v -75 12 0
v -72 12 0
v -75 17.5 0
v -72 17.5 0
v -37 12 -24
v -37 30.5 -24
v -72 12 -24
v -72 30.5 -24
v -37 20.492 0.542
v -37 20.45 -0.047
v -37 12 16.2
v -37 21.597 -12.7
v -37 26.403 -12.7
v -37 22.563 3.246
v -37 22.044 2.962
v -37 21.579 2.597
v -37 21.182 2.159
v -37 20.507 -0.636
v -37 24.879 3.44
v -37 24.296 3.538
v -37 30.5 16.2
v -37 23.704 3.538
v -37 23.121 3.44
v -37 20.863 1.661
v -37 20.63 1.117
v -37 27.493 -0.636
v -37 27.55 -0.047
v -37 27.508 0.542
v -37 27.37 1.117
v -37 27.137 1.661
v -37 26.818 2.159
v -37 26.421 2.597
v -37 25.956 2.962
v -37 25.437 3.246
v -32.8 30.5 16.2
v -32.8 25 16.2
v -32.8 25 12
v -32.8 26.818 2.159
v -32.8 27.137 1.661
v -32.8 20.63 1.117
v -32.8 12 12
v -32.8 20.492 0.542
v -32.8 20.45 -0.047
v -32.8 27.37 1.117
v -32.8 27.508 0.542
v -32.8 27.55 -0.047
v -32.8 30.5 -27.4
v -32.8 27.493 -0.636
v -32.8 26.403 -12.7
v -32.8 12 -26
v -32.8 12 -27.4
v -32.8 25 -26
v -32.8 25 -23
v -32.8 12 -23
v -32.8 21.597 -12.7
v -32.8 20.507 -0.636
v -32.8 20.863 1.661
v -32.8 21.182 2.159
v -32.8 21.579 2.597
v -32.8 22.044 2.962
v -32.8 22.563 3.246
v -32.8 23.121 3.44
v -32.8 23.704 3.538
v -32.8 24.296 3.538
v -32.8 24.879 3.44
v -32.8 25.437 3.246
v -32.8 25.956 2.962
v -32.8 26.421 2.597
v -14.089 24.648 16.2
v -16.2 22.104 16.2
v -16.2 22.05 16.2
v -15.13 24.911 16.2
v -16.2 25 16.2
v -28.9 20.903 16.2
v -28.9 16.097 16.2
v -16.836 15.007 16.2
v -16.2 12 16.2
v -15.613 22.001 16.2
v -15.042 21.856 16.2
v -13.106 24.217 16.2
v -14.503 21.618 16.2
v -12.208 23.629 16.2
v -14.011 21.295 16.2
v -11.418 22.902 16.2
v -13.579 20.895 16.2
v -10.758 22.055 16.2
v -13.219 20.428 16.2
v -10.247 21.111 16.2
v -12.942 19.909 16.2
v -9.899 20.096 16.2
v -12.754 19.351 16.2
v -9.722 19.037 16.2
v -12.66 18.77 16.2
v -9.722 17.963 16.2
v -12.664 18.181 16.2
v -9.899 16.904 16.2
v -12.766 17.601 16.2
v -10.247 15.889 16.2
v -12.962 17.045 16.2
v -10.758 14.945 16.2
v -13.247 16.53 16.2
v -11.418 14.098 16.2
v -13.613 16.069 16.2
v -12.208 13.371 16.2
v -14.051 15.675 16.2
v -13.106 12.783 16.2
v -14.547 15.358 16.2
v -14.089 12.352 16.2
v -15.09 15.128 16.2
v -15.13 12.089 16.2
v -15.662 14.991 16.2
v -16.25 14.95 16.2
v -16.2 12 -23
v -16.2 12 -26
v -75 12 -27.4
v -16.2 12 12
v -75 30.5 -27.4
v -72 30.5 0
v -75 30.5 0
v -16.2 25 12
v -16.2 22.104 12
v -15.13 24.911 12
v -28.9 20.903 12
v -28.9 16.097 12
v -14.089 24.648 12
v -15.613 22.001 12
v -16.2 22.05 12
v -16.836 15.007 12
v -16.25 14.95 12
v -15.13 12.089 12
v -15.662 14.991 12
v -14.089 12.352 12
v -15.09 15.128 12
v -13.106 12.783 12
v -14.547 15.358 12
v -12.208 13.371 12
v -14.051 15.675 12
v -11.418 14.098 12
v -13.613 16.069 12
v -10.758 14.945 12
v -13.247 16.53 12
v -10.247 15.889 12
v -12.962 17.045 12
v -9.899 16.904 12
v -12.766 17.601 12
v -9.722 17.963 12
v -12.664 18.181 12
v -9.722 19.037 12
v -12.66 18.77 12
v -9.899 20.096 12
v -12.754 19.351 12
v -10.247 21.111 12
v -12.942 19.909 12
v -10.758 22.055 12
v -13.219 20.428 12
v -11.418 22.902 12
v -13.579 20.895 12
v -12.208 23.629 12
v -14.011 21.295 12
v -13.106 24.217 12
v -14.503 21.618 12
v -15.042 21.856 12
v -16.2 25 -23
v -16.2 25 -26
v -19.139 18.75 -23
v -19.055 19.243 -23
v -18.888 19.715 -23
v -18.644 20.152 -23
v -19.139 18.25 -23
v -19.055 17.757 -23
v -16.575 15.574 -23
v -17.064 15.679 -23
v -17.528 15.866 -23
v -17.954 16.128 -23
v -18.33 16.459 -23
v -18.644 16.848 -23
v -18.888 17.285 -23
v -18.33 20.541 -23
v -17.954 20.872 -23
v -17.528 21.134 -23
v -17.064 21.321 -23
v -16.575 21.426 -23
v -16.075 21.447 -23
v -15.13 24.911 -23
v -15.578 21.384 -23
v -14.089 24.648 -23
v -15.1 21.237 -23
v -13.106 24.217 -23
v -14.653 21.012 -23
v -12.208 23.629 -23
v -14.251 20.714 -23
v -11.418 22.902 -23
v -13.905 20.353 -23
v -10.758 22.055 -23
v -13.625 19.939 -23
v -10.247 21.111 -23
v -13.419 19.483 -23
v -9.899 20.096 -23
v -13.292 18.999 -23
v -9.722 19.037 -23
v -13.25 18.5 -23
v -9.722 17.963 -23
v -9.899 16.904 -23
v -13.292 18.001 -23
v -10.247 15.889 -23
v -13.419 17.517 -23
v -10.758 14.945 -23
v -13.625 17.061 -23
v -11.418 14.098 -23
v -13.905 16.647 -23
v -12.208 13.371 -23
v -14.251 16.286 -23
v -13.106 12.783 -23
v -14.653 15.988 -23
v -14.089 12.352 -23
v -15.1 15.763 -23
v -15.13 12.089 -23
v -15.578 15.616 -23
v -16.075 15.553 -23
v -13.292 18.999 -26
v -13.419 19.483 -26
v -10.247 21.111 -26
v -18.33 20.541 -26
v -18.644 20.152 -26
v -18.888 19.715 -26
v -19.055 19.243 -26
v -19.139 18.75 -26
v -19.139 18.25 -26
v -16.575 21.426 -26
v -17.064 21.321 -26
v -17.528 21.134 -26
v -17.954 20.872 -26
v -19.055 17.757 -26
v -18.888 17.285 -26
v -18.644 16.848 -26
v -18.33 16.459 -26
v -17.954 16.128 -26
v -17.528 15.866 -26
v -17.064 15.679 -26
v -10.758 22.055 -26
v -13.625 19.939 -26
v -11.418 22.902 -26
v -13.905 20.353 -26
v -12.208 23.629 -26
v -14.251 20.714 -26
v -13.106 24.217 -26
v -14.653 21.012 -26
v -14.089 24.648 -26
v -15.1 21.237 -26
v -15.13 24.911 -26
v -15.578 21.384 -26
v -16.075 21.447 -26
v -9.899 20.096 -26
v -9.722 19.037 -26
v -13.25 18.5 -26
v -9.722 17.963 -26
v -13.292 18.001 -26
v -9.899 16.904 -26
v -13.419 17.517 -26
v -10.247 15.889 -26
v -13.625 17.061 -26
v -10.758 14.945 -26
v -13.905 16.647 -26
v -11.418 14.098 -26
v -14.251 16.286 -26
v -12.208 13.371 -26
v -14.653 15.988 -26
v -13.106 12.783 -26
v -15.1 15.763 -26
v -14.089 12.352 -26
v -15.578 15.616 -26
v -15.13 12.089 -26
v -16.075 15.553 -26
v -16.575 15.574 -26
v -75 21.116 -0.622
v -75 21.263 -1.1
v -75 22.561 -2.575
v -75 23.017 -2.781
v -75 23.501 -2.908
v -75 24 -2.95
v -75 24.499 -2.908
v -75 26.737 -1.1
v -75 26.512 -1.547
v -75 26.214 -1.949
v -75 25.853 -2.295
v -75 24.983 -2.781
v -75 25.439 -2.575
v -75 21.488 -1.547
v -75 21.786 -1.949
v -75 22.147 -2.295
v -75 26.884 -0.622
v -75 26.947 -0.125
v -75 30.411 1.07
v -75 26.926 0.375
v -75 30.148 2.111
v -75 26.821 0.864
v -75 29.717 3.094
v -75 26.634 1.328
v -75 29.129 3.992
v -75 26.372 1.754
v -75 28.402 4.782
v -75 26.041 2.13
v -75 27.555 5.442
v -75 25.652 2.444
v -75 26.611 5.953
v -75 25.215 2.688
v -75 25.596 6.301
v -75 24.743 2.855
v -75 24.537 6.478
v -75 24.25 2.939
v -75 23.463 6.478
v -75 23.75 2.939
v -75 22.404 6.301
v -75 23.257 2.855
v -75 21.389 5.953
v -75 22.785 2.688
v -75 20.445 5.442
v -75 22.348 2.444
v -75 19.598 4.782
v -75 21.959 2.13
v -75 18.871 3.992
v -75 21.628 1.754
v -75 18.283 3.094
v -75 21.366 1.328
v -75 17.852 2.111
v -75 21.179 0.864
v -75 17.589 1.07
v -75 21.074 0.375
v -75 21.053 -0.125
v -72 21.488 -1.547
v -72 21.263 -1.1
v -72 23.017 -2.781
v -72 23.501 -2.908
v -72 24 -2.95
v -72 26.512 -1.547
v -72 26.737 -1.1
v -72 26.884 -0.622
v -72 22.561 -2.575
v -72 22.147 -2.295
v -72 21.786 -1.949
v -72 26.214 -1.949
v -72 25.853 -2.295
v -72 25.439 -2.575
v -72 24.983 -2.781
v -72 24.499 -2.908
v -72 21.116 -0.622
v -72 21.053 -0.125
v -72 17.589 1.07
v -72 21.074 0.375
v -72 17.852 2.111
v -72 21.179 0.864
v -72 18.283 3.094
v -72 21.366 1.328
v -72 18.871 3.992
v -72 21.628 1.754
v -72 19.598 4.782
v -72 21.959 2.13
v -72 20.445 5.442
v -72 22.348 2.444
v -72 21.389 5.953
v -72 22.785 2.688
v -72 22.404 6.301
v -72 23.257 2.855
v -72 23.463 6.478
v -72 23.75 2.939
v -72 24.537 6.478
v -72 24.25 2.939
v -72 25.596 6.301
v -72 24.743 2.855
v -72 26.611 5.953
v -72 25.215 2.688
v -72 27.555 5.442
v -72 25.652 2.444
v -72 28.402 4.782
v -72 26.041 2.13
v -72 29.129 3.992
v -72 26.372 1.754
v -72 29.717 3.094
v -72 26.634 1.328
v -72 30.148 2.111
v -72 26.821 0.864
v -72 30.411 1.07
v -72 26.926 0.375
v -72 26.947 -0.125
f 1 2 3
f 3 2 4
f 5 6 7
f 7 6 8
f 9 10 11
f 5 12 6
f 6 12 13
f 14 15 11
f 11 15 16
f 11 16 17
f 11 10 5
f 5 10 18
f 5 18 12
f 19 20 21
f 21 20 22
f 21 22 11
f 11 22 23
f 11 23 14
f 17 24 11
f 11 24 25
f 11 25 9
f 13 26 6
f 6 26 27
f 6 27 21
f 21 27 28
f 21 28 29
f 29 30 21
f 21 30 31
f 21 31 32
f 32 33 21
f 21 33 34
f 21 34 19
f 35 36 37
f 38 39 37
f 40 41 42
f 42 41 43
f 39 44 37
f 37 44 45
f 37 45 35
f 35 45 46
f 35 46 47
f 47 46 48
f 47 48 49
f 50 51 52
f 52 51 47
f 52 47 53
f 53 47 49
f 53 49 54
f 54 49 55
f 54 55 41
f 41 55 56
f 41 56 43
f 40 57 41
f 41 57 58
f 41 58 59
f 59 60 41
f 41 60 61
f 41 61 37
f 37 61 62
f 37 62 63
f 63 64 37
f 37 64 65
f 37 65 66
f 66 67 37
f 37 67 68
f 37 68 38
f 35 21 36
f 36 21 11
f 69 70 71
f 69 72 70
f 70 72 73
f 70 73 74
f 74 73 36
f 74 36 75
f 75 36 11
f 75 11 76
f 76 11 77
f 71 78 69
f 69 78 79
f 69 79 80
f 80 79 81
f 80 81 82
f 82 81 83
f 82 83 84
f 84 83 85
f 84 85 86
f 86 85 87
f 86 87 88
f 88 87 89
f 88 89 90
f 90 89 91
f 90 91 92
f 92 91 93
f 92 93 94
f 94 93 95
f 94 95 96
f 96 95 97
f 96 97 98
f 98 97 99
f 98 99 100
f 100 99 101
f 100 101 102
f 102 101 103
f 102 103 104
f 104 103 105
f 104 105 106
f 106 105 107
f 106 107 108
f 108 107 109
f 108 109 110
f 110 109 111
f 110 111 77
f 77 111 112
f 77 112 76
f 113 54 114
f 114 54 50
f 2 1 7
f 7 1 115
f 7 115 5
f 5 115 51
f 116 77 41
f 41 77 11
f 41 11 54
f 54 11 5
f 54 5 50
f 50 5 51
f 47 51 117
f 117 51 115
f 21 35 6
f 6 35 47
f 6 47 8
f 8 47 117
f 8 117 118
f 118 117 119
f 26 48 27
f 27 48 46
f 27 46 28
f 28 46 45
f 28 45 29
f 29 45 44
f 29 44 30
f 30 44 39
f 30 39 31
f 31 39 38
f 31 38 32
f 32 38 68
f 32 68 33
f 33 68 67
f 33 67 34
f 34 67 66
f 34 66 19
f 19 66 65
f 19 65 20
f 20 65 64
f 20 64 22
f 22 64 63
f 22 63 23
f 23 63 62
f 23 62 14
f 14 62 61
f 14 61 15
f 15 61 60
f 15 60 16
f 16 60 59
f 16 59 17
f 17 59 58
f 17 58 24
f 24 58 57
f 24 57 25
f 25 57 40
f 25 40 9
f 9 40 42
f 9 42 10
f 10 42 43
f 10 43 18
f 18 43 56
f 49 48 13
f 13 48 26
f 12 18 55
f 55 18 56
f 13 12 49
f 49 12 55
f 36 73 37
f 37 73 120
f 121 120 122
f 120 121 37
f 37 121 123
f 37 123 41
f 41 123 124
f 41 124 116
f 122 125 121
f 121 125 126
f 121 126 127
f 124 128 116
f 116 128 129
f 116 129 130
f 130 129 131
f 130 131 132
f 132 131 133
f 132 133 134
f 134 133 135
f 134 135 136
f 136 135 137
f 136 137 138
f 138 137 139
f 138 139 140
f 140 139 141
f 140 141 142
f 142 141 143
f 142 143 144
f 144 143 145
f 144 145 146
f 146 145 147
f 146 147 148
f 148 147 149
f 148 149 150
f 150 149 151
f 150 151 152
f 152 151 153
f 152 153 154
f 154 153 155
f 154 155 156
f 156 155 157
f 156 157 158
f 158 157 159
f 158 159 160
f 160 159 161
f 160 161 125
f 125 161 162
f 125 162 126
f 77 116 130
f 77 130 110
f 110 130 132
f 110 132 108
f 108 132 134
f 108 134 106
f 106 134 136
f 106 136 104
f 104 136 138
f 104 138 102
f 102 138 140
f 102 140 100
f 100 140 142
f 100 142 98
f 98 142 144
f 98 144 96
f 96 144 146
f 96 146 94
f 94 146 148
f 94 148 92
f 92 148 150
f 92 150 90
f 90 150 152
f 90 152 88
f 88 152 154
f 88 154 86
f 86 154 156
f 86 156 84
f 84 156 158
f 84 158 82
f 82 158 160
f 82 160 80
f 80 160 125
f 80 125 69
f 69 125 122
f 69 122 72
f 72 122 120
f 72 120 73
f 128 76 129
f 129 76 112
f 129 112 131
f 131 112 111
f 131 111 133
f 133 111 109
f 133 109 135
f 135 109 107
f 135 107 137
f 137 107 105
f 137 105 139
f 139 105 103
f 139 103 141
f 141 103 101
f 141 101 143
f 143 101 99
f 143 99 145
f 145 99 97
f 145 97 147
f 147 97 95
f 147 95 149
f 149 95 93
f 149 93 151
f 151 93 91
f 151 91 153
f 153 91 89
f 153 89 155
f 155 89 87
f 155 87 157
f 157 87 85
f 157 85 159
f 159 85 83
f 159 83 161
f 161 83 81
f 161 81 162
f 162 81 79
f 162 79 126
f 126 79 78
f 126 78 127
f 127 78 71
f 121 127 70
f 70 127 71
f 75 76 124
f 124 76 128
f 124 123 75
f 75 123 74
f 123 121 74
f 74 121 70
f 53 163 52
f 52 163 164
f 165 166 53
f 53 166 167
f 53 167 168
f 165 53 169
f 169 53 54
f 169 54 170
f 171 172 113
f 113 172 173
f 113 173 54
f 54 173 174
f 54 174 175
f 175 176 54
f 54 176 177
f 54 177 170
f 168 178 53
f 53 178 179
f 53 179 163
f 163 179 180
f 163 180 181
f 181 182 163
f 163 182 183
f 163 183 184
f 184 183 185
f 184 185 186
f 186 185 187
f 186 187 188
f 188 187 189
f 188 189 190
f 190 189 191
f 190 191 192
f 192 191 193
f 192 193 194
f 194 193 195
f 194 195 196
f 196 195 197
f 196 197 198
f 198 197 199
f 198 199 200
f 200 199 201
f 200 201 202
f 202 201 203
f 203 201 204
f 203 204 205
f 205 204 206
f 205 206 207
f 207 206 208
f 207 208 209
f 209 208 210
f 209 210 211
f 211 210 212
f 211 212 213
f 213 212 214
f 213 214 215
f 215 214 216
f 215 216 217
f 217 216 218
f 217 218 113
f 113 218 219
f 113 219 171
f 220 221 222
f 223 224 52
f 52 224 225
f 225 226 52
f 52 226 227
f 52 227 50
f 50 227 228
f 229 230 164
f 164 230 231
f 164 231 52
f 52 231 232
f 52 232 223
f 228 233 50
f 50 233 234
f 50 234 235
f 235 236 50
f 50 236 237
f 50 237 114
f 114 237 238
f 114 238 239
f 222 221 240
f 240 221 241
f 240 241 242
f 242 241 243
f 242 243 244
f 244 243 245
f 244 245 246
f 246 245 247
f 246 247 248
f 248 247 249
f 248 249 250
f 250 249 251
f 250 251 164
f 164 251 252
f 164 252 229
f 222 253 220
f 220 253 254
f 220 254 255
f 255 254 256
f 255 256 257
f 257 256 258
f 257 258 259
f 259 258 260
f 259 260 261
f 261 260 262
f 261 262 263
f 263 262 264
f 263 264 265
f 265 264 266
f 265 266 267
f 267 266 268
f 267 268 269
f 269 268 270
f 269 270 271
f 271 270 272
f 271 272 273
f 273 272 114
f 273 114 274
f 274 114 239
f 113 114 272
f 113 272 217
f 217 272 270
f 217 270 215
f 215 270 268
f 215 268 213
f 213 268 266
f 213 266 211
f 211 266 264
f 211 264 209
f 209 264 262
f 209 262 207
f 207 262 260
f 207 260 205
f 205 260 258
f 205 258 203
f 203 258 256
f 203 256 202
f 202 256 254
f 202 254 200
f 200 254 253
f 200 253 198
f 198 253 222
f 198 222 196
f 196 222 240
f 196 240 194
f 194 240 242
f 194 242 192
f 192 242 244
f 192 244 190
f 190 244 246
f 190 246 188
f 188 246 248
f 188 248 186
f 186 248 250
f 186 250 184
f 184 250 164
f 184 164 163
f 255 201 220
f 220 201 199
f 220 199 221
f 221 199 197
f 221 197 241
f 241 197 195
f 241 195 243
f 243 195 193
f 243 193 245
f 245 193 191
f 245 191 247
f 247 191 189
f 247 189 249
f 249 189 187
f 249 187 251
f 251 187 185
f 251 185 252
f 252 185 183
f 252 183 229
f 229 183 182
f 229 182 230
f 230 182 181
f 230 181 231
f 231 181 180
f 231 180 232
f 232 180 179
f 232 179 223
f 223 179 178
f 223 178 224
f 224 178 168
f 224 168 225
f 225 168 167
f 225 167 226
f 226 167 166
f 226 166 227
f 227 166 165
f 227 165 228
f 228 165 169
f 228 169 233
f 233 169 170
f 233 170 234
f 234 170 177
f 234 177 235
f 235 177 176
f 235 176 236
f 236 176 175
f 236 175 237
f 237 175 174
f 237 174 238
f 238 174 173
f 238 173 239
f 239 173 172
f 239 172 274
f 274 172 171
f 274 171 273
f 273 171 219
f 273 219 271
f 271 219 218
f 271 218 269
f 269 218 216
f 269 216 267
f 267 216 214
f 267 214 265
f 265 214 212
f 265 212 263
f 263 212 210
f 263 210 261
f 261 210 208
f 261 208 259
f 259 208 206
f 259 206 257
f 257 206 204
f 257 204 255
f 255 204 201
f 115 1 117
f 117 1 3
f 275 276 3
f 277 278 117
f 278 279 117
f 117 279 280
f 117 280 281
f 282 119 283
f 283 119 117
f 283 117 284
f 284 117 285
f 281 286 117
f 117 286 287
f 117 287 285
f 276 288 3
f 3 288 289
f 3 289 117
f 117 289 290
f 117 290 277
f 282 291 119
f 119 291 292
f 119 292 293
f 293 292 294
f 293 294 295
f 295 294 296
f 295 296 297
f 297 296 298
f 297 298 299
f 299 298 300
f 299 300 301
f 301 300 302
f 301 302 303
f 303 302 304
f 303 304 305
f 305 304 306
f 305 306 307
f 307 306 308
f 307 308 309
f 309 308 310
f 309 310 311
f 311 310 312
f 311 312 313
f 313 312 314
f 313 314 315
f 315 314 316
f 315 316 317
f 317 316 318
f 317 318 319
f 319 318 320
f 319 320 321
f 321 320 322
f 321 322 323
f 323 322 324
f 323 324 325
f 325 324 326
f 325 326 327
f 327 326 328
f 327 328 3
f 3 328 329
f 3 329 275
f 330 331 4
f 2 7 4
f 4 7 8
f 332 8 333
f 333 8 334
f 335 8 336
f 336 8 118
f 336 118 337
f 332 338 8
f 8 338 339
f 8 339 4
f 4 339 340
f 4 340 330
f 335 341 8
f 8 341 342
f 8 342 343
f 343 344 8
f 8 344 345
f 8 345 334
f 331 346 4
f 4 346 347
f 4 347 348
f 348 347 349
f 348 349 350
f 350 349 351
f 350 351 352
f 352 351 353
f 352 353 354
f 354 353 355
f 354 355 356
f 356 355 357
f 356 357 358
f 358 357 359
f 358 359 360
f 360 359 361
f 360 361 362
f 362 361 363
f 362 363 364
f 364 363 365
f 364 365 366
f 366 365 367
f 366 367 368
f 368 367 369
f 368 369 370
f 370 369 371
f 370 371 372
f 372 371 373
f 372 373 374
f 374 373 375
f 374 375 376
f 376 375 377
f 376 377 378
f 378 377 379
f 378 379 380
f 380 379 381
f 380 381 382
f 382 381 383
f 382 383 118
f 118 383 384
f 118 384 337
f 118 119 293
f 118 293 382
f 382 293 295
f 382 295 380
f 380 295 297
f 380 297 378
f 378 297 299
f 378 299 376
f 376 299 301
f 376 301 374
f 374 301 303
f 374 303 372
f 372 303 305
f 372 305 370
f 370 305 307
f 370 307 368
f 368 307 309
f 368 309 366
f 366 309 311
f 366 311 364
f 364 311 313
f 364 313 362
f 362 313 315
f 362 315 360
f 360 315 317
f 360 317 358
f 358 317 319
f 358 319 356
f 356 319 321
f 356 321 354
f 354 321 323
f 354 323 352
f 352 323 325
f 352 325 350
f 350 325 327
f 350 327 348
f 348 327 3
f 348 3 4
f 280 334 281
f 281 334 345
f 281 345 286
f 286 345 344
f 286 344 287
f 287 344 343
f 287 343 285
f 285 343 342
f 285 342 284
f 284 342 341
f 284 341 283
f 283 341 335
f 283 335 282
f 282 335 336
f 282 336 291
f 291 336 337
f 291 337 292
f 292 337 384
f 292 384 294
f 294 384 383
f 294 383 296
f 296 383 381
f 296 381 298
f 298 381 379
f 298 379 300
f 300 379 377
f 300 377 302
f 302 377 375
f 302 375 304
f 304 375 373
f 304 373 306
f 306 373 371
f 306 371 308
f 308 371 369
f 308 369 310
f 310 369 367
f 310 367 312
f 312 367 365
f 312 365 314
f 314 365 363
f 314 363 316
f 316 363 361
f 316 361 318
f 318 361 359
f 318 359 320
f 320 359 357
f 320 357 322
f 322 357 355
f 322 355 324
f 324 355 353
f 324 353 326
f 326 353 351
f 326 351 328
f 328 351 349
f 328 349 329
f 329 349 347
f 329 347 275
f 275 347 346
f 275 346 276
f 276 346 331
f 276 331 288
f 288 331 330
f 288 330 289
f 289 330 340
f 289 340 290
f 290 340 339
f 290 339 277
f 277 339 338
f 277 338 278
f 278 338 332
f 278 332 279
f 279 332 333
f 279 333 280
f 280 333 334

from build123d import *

# Parameters (mm, degrees)
BOSS_EXTRUDE1_START = -34.9
SKETCH1_W           = 43.6
SKETCH1_H           = 18.5
BOSS_EXTRUDE1_DEPTH = 2.1
CUT_EXTRUDE1_START  = -34.9
SKETCH2_R           = 3.55
CUT_EXTRUDE1_DEPTH  = 2.1
CUT_EXTRUDE2_START  = -34.9
CUT_EXTRUDE2_DEPTH  = 2.1
BOSS_EXTRUDE2_START = 14.1
SKETCH4_R           = 6.5
BOSS_EXTRUDE2_DEPTH = 2.1
BOSS_EXTRUDE3_START = 14.1
SKETCH5_W           = 20.8
SKETCH5_H           = 13
BOSS_EXTRUDE3_DEPTH = 2.1
CUT_EXTRUDE3_START  = 14.1
SKETCH6_R           = 3.55
CUT_EXTRUDE3_DEPTH  = 2.1
CUT_EXTRUDE4_START  = 14.1
CUT_EXTRUDE4_DEPTH  = 2.1
BOSS_EXTRUDE4_START = -24.5
SKETCH8_R           = 6.5
BOSS_EXTRUDE4_DEPTH = 1.5
BOSS_EXTRUDE5_START = -24.5
SKETCH9_W           = 20.8
SKETCH9_H           = 13
BOSS_EXTRUDE5_DEPTH = 1.5
CUT_EXTRUDE5_START  = -24.5
SKETCH10_R          = 2.95
CUT_EXTRUDE5_DEPTH  = 1.5
BOSS_EXTRUDE6_START = -25.7
SKETCH11_W          = 42.2
SKETCH11_H          = 18.5
BOSS_EXTRUDE6_DEPTH = 1.7
BOSS_EXTRUDE7_START = -73.5
SKETCH12_R          = 6.5
BOSS_EXTRUDE7_DEPTH = 1.5
BOSS_EXTRUDE8_START = -73.5
SKETCH13_W          = 27.4
SKETCH13_H          = 18.5
BOSS_EXTRUDE8_DEPTH = 1.5
CUT_EXTRUDE6_START  = -73.5
SKETCH14_R          = 2.95
CUT_EXTRUDE6_DEPTH  = 1.5


with BuildPart() as part:
    # Sketch1 → Boss-Extrude1 (new, symmetric)
    with BuildSketch(Plane(origin=(0, 0, 0), x_dir=(0, 0, -1), z_dir=(1, 0, 0)).offset(BOSS_EXTRUDE1_START)):
        with Locations((5.6, 21.25)):
            Rectangle(SKETCH1_W, SKETCH1_H)
    extrude(amount=BOSS_EXTRUDE1_DEPTH, both=True)

    # Sketch2 → Cut-Extrude1 (cut, symmetric)
    with BuildSketch(Plane(origin=(0, 0, 0), x_dir=(0, 0, -1), z_dir=(1, 0, 0)).offset(CUT_EXTRUDE1_START)):
        with Locations((0, 24)):
            Circle(SKETCH2_R)
    extrude(amount=CUT_EXTRUDE1_DEPTH, both=True, mode=Mode.SUBTRACT)

    # Sketch3 → Cut-Extrude2 (cut, symmetric)
    with BuildSketch(Plane(origin=(0, 0, 0), x_dir=(0, 0, -1), z_dir=(1, 0, 0)).offset(CUT_EXTRUDE2_START)):
        Polygon((0, 20.45), (12.7, 21.596718595), (12.7, 26.403281405), (0, 27.55), align=None)
    extrude(amount=CUT_EXTRUDE2_DEPTH, both=True, mode=Mode.SUBTRACT)



with BuildPart() as body_2:
    # Sketch4 → Boss-Extrude2 (new, symmetric)
    with BuildSketch(Plane.XY.offset(BOSS_EXTRUDE2_START)):
        with Locations((-16.2, 18.5)):
            Circle(SKETCH4_R)
    extrude(amount=BOSS_EXTRUDE2_DEPTH, both=True)


with BuildPart() as part_1:
    add(part.part)

    add(body_2.part)  # Boss-Extrude3 merges body 2
    # Sketch5 → Boss-Extrude3 (add, symmetric)
    with BuildSketch(Plane.XY.offset(BOSS_EXTRUDE3_START)):
        with Locations((-26.6, 18.5)):
            Rectangle(SKETCH5_W, SKETCH5_H)
    extrude(amount=BOSS_EXTRUDE3_DEPTH, both=True)

    # Sketch6 → Cut-Extrude3 (cut, symmetric)
    with BuildSketch(Plane.XY.offset(CUT_EXTRUDE3_START)):
        with Locations((-16.2, 18.5)):
            Circle(SKETCH6_R)
    extrude(amount=CUT_EXTRUDE3_DEPTH, both=True, mode=Mode.SUBTRACT)

    # Sketch7 → Cut-Extrude4 (cut, symmetric)
    with BuildSketch(Plane.XY.offset(CUT_EXTRUDE4_START)):
        Polygon((-16.2, 22.103784861), (-28.9, 20.903281405), (-28.9, 16.096718595), (-16.2, 14.95), align=None)
    extrude(amount=CUT_EXTRUDE4_DEPTH, both=True, mode=Mode.SUBTRACT)



with BuildPart() as body_2_2:
    # Sketch8 → Boss-Extrude4 (new, symmetric)
    with BuildSketch(Plane.XY.offset(BOSS_EXTRUDE4_START)):
        with Locations(Location((-16.2, 18.5, 0), (0, 0, 180))):
            Circle(SKETCH8_R)
    extrude(amount=BOSS_EXTRUDE4_DEPTH, both=True)


with BuildPart() as part_2:
    add(part_1.part)

    add(body_2_2.part)  # Boss-Extrude5 merges body 2 2
    # Sketch9 → Boss-Extrude5 (add, symmetric)
    with BuildSketch(Plane.XY.offset(BOSS_EXTRUDE5_START)):
        with Locations((-26.6, 18.5)):
            Rectangle(SKETCH9_W, SKETCH9_H)
    extrude(amount=BOSS_EXTRUDE5_DEPTH, both=True)

    # Sketch10 → Cut-Extrude5 (cut, symmetric)
    with BuildSketch(Plane.XY.offset(CUT_EXTRUDE5_START)):
        with Locations((-16.2, 18.5)):
            Circle(SKETCH10_R)
    extrude(amount=CUT_EXTRUDE5_DEPTH, both=True, mode=Mode.SUBTRACT)

    # Sketch11 → Boss-Extrude6 (add, symmetric)
    with BuildSketch(Plane.XY.offset(BOSS_EXTRUDE6_START)):
        with Locations((-53.9, 21.25)):
            Rectangle(SKETCH11_W, SKETCH11_H)
    extrude(amount=BOSS_EXTRUDE6_DEPTH, both=True)



with BuildPart() as body_2_3:
    # Sketch12 → Boss-Extrude7 (new, symmetric)
    with BuildSketch(Plane(origin=(0, 0, 0), x_dir=(0, 0, -1), z_dir=(1, 0, 0)).offset(BOSS_EXTRUDE7_START)):
        with Locations((0, 24)):
            Circle(SKETCH12_R)
    extrude(amount=BOSS_EXTRUDE7_DEPTH, both=True)


with BuildPart() as part_3:
    add(part_2.part)

    add(body_2_3.part)  # Boss-Extrude8 merges body 2 3
    # Sketch13 → Boss-Extrude8 (add, symmetric)
    with BuildSketch(Plane(origin=(0, 0, 0), x_dir=(0, 0, -1), z_dir=(1, 0, 0)).offset(BOSS_EXTRUDE8_START)):
        with Locations((13.7, 21.25)):
            Rectangle(SKETCH13_W, SKETCH13_H)
    extrude(amount=BOSS_EXTRUDE8_DEPTH, both=True)

    # Sketch14 → Cut-Extrude6 (cut, symmetric)
    with BuildSketch(Plane(origin=(0, 0, 0), x_dir=(0, 0, -1), z_dir=(1, 0, 0)).offset(CUT_EXTRUDE6_START)):
        with Locations((0, 24)):
            Circle(SKETCH14_R)
    extrude(amount=CUT_EXTRUDE6_DEPTH, both=True, mode=Mode.SUBTRACT)


solid = part_3.part
